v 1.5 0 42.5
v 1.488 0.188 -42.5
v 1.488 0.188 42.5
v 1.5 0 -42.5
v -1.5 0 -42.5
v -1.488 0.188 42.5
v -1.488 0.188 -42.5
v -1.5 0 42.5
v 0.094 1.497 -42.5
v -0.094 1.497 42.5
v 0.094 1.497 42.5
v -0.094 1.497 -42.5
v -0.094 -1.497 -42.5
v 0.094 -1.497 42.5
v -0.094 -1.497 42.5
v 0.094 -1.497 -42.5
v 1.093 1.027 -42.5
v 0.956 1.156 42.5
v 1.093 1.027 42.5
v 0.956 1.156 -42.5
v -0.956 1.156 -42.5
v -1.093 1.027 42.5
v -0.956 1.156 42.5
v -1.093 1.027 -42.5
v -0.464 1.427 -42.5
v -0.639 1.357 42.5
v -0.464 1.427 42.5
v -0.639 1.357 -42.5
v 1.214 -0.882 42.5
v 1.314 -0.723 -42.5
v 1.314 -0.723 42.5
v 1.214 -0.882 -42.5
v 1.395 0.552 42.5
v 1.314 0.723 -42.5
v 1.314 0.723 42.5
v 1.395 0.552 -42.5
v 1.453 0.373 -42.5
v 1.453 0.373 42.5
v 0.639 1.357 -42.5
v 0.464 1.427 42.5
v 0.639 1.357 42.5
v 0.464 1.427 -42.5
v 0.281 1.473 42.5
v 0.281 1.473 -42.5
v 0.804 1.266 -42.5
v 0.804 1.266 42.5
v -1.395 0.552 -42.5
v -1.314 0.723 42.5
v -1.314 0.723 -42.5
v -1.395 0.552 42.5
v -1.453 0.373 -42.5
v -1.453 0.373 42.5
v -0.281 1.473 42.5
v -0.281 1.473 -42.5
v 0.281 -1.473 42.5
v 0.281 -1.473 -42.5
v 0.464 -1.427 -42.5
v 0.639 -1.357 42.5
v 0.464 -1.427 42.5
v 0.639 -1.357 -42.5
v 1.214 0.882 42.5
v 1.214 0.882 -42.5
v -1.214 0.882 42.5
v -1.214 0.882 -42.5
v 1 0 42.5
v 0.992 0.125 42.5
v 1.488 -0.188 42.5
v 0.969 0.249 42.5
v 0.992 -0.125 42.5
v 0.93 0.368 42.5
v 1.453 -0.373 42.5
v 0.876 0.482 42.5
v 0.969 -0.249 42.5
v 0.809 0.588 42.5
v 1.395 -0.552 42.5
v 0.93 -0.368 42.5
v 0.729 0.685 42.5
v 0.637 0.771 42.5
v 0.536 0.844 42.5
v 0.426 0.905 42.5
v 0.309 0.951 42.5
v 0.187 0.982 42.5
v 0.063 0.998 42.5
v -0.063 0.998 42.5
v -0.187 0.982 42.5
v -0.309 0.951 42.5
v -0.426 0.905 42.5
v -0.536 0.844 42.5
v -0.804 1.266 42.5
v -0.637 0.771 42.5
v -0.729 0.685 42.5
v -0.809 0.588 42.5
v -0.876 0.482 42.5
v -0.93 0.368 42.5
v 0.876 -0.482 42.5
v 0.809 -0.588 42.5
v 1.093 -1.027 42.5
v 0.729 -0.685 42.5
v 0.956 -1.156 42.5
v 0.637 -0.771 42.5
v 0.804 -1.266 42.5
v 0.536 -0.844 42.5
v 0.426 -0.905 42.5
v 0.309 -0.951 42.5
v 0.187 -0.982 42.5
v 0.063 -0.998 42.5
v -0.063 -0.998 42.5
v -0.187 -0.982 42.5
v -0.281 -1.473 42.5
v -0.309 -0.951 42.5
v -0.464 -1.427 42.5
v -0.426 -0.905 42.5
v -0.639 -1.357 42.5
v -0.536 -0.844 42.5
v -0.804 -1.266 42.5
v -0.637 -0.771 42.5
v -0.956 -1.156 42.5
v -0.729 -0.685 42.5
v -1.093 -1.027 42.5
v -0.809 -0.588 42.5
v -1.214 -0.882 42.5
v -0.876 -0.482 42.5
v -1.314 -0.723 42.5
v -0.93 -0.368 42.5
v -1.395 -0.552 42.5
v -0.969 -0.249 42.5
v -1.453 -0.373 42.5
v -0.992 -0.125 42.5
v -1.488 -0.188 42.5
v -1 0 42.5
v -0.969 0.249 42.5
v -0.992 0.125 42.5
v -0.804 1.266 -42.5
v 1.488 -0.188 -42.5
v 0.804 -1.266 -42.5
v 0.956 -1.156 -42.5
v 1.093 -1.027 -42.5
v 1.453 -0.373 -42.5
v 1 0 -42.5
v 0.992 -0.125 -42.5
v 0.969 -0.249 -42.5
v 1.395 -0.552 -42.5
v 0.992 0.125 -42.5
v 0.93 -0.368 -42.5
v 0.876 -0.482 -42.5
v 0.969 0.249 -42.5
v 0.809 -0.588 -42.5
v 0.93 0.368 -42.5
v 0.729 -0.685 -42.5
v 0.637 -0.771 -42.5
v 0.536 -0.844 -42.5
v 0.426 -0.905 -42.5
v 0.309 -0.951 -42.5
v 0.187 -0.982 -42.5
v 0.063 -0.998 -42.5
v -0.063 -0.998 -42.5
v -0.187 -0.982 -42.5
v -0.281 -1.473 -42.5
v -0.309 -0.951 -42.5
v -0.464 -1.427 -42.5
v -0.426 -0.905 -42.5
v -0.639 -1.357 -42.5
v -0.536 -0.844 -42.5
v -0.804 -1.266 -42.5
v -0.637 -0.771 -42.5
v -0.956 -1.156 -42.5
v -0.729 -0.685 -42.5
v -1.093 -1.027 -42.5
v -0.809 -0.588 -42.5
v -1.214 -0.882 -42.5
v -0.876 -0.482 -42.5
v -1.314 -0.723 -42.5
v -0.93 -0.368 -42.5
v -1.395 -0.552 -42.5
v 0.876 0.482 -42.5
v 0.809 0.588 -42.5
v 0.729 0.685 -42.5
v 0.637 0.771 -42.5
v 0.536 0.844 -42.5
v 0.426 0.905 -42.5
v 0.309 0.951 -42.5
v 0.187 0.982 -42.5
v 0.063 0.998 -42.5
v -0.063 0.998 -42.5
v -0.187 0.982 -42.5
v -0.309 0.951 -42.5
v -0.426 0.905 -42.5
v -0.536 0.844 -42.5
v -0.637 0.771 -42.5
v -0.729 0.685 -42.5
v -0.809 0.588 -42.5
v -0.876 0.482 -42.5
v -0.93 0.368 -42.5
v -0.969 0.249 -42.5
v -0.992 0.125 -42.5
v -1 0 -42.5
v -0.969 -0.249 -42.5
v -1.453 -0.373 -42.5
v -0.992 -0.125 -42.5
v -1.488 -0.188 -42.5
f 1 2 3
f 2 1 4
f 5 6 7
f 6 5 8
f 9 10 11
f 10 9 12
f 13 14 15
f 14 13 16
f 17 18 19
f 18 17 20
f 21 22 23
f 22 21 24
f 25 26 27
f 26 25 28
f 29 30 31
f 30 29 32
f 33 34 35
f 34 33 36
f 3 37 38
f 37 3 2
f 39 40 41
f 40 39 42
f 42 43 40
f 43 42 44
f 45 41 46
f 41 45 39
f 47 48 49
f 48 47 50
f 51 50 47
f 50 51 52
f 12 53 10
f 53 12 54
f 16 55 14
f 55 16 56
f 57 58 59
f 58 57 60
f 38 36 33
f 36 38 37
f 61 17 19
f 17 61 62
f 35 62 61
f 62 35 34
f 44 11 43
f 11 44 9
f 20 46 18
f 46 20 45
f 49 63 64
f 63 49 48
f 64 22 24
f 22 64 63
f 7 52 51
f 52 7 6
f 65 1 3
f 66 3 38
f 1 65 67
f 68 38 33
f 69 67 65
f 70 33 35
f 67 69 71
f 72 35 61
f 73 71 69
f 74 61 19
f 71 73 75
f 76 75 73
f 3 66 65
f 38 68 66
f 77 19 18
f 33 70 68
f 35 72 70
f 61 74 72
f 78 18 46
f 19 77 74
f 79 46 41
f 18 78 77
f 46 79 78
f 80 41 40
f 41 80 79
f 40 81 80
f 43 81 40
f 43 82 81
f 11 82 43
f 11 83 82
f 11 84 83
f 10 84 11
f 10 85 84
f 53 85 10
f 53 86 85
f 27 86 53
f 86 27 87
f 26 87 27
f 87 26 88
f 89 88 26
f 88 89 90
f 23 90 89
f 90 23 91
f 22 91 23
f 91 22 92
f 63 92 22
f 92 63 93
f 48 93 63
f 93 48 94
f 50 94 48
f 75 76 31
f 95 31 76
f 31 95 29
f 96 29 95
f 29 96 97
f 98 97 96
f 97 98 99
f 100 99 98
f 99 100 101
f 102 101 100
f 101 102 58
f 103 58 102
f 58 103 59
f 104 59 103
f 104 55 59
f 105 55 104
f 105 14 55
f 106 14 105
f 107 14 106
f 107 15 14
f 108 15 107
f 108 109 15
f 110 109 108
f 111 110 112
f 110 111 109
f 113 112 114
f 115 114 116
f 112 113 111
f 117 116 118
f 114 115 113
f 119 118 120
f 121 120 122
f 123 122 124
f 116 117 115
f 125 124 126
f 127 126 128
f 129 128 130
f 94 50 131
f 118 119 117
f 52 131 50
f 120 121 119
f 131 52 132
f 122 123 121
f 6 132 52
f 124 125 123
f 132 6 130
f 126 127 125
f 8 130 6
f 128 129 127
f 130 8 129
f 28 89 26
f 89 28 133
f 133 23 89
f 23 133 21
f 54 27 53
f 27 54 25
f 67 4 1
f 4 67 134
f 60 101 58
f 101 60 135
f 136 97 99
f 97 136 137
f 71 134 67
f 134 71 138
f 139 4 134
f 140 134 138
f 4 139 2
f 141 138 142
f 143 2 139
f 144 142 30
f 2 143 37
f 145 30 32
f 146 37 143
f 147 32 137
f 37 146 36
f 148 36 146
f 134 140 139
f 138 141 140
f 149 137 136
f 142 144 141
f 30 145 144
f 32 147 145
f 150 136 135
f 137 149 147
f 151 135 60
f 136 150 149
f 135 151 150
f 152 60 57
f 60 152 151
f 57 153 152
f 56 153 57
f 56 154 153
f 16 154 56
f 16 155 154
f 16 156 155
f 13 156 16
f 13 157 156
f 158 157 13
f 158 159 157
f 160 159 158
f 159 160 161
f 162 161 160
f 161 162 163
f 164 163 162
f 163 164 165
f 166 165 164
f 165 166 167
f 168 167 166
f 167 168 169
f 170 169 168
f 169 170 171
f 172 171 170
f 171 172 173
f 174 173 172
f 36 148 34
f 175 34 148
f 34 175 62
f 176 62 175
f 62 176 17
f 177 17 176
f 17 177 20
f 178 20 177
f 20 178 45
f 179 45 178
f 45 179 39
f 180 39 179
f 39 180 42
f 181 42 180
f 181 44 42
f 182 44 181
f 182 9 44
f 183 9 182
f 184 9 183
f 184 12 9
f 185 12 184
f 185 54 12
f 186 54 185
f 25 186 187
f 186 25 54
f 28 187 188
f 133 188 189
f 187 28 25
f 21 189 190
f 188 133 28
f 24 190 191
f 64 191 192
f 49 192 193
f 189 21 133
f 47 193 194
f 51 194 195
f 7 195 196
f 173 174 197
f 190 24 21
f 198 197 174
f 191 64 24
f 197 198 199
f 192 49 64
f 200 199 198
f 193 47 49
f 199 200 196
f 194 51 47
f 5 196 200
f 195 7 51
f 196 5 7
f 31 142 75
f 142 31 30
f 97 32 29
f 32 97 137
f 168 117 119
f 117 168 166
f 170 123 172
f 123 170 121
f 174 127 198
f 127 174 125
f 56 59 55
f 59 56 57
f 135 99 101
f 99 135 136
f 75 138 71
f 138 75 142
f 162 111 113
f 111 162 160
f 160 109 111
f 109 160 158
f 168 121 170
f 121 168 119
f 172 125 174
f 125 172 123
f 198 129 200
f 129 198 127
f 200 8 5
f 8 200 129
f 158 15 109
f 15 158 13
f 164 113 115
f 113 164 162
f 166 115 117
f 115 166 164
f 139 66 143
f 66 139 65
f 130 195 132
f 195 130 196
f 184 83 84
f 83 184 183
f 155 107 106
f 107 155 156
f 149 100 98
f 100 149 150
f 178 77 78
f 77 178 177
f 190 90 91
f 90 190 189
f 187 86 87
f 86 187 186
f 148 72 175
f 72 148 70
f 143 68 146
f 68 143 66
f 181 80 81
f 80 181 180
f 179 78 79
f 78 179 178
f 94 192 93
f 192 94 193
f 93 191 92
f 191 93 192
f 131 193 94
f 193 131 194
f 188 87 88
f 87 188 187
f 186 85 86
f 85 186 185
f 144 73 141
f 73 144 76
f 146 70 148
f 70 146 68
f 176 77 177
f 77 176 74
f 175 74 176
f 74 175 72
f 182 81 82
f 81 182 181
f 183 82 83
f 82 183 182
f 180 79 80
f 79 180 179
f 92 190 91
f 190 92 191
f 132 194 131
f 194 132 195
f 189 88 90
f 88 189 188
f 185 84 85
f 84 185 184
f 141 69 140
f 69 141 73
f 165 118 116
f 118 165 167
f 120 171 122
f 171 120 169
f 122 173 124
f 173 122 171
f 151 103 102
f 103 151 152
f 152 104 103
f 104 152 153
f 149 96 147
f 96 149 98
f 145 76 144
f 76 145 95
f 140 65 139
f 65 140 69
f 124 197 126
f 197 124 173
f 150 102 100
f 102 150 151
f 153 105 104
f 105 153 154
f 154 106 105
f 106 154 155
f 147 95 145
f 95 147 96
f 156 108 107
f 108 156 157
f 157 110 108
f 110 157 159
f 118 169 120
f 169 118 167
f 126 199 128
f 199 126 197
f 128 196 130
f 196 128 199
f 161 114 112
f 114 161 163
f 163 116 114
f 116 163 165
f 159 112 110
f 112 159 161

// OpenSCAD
$fn = 50;


difference() {
	union() {
		translate(v = [0, 0, -42.5000000000]) {
			cylinder(h = 85, r = 1.5000000000);
		}
	}
	union() {
		translate(v = [0, 0, -100.0000000000]) {
			cylinder(h = 200, r = 1.0000000000);
		}
	}
}
